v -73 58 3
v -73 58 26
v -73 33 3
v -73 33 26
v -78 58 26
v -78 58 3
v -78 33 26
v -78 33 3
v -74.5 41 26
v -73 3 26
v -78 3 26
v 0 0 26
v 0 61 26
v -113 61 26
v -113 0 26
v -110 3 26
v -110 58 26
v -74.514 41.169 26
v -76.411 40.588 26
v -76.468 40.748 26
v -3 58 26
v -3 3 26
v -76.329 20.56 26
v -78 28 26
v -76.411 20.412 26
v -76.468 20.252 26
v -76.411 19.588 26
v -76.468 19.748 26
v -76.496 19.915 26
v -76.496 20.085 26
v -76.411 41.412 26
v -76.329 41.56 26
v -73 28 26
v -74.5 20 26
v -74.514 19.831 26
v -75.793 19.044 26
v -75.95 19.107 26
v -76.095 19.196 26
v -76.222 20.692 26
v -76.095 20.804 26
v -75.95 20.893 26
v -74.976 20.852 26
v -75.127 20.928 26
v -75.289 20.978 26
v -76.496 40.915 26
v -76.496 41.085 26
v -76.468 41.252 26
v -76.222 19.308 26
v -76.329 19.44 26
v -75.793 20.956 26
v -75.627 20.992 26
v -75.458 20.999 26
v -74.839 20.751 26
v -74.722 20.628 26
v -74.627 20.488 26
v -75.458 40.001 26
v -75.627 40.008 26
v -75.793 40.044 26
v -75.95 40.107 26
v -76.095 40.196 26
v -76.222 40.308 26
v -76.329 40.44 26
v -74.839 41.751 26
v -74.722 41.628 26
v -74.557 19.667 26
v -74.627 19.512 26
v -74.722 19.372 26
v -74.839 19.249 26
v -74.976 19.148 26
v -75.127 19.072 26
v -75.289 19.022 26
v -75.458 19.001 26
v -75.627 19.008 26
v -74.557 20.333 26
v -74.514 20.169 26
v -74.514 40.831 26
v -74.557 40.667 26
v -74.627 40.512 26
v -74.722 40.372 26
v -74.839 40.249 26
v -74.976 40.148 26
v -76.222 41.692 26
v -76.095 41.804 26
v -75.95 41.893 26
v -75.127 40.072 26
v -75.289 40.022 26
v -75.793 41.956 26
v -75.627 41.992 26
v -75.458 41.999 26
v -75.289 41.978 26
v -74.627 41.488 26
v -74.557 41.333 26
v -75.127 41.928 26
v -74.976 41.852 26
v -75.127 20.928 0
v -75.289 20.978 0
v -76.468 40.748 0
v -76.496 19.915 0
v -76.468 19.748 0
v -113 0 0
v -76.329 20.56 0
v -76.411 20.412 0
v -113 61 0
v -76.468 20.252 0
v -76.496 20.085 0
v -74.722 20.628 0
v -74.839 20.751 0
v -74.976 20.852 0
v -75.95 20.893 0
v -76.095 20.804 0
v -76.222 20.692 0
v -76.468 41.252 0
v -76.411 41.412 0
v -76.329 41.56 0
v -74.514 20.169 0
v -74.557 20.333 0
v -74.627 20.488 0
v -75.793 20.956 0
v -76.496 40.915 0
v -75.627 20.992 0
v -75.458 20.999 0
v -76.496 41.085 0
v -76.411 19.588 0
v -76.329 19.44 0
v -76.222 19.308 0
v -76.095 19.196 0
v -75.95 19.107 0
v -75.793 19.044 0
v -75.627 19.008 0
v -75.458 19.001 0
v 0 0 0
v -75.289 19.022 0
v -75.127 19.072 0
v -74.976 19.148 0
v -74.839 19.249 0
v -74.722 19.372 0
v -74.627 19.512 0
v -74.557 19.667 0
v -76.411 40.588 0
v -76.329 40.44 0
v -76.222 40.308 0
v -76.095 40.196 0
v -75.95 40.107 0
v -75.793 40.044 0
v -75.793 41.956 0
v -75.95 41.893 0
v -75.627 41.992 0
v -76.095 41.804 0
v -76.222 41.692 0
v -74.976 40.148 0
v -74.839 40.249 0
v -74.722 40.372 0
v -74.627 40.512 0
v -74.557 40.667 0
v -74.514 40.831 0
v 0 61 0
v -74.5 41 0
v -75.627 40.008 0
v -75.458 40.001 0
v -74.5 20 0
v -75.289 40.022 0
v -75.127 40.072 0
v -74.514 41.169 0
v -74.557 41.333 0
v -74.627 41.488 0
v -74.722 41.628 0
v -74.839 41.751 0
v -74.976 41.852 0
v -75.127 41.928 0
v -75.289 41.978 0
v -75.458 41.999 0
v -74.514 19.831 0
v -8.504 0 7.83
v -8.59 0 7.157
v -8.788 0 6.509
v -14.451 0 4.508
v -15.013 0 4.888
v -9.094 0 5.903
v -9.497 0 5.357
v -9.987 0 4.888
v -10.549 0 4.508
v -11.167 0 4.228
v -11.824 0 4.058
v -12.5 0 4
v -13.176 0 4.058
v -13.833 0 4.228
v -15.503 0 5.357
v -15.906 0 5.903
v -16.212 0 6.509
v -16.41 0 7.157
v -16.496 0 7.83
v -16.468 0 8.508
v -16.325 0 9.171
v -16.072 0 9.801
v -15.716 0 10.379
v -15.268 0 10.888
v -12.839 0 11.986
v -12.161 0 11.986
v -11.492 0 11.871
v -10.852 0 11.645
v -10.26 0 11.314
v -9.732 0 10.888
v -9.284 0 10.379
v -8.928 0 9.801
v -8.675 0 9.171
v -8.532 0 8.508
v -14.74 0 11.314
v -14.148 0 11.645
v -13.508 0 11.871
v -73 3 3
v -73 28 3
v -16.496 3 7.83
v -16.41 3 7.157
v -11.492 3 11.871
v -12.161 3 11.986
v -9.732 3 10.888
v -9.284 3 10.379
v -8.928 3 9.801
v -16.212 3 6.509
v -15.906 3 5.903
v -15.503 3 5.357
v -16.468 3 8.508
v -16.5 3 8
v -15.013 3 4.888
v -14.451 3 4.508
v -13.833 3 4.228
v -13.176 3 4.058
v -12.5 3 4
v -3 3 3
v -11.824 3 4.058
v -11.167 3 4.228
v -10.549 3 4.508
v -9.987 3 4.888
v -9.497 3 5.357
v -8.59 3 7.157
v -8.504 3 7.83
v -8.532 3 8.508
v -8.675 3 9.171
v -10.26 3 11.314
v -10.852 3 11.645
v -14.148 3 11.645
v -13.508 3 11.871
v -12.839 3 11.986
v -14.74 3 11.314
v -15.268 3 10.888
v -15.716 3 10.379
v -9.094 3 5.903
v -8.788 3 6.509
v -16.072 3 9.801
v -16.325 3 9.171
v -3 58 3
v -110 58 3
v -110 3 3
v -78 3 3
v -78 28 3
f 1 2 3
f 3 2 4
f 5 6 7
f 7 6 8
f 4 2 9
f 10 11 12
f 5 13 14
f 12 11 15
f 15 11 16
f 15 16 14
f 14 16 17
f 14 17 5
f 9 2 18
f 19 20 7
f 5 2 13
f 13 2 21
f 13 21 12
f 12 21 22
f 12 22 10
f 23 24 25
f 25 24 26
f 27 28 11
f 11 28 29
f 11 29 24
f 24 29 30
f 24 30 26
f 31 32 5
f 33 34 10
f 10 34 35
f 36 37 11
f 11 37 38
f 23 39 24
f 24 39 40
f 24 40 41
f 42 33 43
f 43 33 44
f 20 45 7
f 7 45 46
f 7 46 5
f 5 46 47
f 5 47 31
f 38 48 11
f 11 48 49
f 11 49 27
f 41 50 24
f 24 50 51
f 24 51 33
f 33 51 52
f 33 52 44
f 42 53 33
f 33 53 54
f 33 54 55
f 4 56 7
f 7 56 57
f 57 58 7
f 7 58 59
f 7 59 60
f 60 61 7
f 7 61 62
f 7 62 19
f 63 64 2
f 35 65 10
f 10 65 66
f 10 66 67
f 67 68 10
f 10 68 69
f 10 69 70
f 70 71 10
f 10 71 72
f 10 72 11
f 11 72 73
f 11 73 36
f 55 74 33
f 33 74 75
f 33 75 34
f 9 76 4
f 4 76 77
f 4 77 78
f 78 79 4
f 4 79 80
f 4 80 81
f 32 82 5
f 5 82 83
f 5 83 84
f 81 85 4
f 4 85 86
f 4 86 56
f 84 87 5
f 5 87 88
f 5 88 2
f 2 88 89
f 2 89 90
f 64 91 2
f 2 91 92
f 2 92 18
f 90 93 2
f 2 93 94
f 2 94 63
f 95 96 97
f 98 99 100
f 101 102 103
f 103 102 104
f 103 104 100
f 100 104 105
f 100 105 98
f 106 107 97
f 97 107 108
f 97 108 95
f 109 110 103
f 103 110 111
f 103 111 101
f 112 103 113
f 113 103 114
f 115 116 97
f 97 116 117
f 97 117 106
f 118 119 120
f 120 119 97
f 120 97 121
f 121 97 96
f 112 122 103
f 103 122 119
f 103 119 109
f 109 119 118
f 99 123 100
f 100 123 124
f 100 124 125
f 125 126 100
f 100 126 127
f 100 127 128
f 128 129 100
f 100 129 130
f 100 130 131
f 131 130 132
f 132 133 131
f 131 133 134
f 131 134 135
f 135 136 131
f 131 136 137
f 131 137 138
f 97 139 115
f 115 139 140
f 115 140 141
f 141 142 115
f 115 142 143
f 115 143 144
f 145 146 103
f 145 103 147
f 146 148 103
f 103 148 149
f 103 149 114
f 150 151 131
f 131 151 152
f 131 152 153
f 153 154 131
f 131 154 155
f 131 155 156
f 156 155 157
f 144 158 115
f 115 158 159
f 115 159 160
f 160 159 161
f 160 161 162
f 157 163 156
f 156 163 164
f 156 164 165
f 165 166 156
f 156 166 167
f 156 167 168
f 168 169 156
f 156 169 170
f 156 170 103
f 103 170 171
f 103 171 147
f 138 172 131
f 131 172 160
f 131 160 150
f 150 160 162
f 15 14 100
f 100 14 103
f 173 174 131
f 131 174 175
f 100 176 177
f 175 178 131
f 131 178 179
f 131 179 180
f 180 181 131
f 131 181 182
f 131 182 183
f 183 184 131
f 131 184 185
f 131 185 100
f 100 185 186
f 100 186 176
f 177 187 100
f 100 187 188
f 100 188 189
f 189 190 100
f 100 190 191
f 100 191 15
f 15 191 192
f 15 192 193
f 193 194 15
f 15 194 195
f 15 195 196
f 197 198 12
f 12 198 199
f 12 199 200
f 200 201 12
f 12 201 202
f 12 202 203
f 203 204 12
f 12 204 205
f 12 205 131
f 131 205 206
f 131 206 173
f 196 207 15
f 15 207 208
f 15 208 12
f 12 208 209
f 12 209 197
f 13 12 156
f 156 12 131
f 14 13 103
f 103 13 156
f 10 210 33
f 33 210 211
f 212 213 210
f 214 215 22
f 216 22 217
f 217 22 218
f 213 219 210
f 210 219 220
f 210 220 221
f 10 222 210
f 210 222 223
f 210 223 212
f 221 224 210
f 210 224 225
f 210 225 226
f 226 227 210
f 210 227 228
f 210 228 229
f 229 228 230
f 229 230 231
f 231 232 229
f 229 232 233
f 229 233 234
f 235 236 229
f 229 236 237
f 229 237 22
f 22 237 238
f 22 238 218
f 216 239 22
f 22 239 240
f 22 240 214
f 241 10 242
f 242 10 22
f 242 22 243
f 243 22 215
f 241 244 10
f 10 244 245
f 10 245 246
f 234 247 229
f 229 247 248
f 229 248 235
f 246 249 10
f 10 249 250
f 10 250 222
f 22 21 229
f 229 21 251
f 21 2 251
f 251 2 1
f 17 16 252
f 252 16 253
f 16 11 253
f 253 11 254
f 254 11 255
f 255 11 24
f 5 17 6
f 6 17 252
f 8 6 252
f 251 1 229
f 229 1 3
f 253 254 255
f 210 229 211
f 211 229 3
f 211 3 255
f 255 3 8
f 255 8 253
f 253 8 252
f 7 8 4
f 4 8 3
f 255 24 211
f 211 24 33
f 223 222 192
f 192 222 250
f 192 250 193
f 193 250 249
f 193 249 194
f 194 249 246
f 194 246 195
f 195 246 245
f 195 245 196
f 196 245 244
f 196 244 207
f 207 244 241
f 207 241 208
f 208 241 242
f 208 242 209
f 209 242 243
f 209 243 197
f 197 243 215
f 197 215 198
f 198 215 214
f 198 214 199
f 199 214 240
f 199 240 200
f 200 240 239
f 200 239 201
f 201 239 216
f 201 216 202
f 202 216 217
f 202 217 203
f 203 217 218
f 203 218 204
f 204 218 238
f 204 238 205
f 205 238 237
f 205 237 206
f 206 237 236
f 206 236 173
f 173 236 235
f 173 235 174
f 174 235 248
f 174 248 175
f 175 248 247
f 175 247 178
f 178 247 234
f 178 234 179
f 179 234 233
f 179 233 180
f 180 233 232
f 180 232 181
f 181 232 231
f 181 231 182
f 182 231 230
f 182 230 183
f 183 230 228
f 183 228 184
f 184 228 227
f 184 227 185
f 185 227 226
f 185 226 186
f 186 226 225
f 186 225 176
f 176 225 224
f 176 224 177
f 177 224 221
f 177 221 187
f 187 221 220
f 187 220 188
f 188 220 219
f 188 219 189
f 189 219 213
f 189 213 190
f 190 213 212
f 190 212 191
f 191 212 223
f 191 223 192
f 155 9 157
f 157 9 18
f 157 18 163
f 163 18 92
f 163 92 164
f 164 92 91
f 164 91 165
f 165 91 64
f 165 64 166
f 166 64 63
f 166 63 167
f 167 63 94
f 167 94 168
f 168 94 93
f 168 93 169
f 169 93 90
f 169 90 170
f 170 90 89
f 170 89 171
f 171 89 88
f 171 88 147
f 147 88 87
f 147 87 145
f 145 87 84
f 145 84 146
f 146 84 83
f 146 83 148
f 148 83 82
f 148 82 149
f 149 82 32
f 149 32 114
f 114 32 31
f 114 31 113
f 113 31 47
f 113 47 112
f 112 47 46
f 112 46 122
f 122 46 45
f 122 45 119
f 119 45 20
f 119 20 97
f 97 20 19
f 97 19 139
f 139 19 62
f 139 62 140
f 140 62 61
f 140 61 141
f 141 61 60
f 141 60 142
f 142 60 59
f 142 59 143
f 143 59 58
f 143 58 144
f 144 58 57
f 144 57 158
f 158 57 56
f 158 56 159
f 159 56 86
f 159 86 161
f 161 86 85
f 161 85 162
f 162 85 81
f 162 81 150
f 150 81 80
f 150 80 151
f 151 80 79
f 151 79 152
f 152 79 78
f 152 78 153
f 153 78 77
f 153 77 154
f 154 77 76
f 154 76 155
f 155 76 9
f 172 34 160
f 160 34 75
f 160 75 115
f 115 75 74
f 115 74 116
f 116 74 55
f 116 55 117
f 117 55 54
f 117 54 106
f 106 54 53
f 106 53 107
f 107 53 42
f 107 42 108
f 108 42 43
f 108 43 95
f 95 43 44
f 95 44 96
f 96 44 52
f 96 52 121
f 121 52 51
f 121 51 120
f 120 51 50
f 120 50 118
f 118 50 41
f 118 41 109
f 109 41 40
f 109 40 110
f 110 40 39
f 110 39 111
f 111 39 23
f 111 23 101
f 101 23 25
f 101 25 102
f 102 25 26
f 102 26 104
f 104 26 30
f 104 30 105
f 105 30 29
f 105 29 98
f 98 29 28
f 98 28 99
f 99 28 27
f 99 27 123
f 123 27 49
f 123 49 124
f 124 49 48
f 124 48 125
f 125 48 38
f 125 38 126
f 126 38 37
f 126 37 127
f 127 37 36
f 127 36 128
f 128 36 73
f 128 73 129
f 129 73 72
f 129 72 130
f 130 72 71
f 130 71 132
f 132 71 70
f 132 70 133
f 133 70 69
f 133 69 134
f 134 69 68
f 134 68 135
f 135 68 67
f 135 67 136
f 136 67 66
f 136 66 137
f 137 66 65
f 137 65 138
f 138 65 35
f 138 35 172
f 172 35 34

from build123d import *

# Parameters (mm, degrees)
SKETCH1_W           = 113
SKETCH1_H           = 61
SKETCH1_W_2         = 70
SKETCH1_H_2         = 55
SKETCH1_W_3         = 32
BOSS_EXTRUDE1_DEPTH = 26
SKETCH2_W           = 70
SKETCH2_H           = 55
SKETCH2_W_2         = 32
BOSS_EXTRUDE2_DEPTH = 3
SKETCH3_W           = 23
SKETCH3_H           = 5
CUT_EXTRUDE1_DEPTH  = 5
SKETCH5_R           = 4
CUT_EXTRUDE3_DEPTH  = 10
SKETCH6_R           = 1
CUT_EXTRUDE4_DEPTH  = 30


with BuildPart() as part:
    # Sketch1 → Boss-Extrude1 (new body)
    with BuildSketch(Plane.XY):
        with Locations((-56.5, 30.5)):
            Rectangle(SKETCH1_W, SKETCH1_H)
        with Locations((-38, 30.5)):
            Rectangle(SKETCH1_W_2, SKETCH1_H_2, mode=Mode.SUBTRACT)
        with Locations((-94, 30.5)):
            Rectangle(SKETCH1_W_3, SKETCH1_H_2, mode=Mode.SUBTRACT)
    extrude(amount=BOSS_EXTRUDE1_DEPTH)

    # Sketch2 → Boss-Extrude2 (add)
    with BuildSketch(Plane(origin=(0, 0, 0), x_dir=(-1, 0, 0), z_dir=(0, 0, -1))):
        with Locations((38, 30.5)):
            Rectangle(SKETCH2_W, SKETCH2_H)
        with Locations((94, 30.5)):
            Rectangle(SKETCH2_W_2, SKETCH2_H)
    extrude(amount=-BOSS_EXTRUDE2_DEPTH)

    # Sketch3 → Cut-Extrude1 (cut)
    with BuildSketch(Plane(origin=(-73, 0, 0), x_dir=(0, 0, -1), z_dir=(1, 0, 0))):
        with Locations((-14.5, 30.5)):
            Rectangle(SKETCH3_W, SKETCH3_H)
    extrude(amount=-CUT_EXTRUDE1_DEPTH, mode=Mode.SUBTRACT)

    # Sketch5 → Cut-Extrude3 (cut)
    with BuildSketch(Plane(origin=(0, 0, 0), x_dir=(-1, 0, 0), z_dir=(0, -1, 0))):
        with Locations(Location((12.5, -8, 0), (0, 0, 90))):
            Circle(SKETCH5_R)
    extrude(amount=-CUT_EXTRUDE3_DEPTH, mode=Mode.SUBTRACT)

    # Sketch6 → Cut-Extrude4 (cut)
    with BuildSketch(Plane.XY.offset(26)):
        with Locations((-75.5, 41)):
            Circle(SKETCH6_R)
        with Locations((-75.5, 20)):
            Circle(SKETCH6_R)
    extrude(amount=-CUT_EXTRUDE4_DEPTH, mode=Mode.SUBTRACT)


solid = part.part
